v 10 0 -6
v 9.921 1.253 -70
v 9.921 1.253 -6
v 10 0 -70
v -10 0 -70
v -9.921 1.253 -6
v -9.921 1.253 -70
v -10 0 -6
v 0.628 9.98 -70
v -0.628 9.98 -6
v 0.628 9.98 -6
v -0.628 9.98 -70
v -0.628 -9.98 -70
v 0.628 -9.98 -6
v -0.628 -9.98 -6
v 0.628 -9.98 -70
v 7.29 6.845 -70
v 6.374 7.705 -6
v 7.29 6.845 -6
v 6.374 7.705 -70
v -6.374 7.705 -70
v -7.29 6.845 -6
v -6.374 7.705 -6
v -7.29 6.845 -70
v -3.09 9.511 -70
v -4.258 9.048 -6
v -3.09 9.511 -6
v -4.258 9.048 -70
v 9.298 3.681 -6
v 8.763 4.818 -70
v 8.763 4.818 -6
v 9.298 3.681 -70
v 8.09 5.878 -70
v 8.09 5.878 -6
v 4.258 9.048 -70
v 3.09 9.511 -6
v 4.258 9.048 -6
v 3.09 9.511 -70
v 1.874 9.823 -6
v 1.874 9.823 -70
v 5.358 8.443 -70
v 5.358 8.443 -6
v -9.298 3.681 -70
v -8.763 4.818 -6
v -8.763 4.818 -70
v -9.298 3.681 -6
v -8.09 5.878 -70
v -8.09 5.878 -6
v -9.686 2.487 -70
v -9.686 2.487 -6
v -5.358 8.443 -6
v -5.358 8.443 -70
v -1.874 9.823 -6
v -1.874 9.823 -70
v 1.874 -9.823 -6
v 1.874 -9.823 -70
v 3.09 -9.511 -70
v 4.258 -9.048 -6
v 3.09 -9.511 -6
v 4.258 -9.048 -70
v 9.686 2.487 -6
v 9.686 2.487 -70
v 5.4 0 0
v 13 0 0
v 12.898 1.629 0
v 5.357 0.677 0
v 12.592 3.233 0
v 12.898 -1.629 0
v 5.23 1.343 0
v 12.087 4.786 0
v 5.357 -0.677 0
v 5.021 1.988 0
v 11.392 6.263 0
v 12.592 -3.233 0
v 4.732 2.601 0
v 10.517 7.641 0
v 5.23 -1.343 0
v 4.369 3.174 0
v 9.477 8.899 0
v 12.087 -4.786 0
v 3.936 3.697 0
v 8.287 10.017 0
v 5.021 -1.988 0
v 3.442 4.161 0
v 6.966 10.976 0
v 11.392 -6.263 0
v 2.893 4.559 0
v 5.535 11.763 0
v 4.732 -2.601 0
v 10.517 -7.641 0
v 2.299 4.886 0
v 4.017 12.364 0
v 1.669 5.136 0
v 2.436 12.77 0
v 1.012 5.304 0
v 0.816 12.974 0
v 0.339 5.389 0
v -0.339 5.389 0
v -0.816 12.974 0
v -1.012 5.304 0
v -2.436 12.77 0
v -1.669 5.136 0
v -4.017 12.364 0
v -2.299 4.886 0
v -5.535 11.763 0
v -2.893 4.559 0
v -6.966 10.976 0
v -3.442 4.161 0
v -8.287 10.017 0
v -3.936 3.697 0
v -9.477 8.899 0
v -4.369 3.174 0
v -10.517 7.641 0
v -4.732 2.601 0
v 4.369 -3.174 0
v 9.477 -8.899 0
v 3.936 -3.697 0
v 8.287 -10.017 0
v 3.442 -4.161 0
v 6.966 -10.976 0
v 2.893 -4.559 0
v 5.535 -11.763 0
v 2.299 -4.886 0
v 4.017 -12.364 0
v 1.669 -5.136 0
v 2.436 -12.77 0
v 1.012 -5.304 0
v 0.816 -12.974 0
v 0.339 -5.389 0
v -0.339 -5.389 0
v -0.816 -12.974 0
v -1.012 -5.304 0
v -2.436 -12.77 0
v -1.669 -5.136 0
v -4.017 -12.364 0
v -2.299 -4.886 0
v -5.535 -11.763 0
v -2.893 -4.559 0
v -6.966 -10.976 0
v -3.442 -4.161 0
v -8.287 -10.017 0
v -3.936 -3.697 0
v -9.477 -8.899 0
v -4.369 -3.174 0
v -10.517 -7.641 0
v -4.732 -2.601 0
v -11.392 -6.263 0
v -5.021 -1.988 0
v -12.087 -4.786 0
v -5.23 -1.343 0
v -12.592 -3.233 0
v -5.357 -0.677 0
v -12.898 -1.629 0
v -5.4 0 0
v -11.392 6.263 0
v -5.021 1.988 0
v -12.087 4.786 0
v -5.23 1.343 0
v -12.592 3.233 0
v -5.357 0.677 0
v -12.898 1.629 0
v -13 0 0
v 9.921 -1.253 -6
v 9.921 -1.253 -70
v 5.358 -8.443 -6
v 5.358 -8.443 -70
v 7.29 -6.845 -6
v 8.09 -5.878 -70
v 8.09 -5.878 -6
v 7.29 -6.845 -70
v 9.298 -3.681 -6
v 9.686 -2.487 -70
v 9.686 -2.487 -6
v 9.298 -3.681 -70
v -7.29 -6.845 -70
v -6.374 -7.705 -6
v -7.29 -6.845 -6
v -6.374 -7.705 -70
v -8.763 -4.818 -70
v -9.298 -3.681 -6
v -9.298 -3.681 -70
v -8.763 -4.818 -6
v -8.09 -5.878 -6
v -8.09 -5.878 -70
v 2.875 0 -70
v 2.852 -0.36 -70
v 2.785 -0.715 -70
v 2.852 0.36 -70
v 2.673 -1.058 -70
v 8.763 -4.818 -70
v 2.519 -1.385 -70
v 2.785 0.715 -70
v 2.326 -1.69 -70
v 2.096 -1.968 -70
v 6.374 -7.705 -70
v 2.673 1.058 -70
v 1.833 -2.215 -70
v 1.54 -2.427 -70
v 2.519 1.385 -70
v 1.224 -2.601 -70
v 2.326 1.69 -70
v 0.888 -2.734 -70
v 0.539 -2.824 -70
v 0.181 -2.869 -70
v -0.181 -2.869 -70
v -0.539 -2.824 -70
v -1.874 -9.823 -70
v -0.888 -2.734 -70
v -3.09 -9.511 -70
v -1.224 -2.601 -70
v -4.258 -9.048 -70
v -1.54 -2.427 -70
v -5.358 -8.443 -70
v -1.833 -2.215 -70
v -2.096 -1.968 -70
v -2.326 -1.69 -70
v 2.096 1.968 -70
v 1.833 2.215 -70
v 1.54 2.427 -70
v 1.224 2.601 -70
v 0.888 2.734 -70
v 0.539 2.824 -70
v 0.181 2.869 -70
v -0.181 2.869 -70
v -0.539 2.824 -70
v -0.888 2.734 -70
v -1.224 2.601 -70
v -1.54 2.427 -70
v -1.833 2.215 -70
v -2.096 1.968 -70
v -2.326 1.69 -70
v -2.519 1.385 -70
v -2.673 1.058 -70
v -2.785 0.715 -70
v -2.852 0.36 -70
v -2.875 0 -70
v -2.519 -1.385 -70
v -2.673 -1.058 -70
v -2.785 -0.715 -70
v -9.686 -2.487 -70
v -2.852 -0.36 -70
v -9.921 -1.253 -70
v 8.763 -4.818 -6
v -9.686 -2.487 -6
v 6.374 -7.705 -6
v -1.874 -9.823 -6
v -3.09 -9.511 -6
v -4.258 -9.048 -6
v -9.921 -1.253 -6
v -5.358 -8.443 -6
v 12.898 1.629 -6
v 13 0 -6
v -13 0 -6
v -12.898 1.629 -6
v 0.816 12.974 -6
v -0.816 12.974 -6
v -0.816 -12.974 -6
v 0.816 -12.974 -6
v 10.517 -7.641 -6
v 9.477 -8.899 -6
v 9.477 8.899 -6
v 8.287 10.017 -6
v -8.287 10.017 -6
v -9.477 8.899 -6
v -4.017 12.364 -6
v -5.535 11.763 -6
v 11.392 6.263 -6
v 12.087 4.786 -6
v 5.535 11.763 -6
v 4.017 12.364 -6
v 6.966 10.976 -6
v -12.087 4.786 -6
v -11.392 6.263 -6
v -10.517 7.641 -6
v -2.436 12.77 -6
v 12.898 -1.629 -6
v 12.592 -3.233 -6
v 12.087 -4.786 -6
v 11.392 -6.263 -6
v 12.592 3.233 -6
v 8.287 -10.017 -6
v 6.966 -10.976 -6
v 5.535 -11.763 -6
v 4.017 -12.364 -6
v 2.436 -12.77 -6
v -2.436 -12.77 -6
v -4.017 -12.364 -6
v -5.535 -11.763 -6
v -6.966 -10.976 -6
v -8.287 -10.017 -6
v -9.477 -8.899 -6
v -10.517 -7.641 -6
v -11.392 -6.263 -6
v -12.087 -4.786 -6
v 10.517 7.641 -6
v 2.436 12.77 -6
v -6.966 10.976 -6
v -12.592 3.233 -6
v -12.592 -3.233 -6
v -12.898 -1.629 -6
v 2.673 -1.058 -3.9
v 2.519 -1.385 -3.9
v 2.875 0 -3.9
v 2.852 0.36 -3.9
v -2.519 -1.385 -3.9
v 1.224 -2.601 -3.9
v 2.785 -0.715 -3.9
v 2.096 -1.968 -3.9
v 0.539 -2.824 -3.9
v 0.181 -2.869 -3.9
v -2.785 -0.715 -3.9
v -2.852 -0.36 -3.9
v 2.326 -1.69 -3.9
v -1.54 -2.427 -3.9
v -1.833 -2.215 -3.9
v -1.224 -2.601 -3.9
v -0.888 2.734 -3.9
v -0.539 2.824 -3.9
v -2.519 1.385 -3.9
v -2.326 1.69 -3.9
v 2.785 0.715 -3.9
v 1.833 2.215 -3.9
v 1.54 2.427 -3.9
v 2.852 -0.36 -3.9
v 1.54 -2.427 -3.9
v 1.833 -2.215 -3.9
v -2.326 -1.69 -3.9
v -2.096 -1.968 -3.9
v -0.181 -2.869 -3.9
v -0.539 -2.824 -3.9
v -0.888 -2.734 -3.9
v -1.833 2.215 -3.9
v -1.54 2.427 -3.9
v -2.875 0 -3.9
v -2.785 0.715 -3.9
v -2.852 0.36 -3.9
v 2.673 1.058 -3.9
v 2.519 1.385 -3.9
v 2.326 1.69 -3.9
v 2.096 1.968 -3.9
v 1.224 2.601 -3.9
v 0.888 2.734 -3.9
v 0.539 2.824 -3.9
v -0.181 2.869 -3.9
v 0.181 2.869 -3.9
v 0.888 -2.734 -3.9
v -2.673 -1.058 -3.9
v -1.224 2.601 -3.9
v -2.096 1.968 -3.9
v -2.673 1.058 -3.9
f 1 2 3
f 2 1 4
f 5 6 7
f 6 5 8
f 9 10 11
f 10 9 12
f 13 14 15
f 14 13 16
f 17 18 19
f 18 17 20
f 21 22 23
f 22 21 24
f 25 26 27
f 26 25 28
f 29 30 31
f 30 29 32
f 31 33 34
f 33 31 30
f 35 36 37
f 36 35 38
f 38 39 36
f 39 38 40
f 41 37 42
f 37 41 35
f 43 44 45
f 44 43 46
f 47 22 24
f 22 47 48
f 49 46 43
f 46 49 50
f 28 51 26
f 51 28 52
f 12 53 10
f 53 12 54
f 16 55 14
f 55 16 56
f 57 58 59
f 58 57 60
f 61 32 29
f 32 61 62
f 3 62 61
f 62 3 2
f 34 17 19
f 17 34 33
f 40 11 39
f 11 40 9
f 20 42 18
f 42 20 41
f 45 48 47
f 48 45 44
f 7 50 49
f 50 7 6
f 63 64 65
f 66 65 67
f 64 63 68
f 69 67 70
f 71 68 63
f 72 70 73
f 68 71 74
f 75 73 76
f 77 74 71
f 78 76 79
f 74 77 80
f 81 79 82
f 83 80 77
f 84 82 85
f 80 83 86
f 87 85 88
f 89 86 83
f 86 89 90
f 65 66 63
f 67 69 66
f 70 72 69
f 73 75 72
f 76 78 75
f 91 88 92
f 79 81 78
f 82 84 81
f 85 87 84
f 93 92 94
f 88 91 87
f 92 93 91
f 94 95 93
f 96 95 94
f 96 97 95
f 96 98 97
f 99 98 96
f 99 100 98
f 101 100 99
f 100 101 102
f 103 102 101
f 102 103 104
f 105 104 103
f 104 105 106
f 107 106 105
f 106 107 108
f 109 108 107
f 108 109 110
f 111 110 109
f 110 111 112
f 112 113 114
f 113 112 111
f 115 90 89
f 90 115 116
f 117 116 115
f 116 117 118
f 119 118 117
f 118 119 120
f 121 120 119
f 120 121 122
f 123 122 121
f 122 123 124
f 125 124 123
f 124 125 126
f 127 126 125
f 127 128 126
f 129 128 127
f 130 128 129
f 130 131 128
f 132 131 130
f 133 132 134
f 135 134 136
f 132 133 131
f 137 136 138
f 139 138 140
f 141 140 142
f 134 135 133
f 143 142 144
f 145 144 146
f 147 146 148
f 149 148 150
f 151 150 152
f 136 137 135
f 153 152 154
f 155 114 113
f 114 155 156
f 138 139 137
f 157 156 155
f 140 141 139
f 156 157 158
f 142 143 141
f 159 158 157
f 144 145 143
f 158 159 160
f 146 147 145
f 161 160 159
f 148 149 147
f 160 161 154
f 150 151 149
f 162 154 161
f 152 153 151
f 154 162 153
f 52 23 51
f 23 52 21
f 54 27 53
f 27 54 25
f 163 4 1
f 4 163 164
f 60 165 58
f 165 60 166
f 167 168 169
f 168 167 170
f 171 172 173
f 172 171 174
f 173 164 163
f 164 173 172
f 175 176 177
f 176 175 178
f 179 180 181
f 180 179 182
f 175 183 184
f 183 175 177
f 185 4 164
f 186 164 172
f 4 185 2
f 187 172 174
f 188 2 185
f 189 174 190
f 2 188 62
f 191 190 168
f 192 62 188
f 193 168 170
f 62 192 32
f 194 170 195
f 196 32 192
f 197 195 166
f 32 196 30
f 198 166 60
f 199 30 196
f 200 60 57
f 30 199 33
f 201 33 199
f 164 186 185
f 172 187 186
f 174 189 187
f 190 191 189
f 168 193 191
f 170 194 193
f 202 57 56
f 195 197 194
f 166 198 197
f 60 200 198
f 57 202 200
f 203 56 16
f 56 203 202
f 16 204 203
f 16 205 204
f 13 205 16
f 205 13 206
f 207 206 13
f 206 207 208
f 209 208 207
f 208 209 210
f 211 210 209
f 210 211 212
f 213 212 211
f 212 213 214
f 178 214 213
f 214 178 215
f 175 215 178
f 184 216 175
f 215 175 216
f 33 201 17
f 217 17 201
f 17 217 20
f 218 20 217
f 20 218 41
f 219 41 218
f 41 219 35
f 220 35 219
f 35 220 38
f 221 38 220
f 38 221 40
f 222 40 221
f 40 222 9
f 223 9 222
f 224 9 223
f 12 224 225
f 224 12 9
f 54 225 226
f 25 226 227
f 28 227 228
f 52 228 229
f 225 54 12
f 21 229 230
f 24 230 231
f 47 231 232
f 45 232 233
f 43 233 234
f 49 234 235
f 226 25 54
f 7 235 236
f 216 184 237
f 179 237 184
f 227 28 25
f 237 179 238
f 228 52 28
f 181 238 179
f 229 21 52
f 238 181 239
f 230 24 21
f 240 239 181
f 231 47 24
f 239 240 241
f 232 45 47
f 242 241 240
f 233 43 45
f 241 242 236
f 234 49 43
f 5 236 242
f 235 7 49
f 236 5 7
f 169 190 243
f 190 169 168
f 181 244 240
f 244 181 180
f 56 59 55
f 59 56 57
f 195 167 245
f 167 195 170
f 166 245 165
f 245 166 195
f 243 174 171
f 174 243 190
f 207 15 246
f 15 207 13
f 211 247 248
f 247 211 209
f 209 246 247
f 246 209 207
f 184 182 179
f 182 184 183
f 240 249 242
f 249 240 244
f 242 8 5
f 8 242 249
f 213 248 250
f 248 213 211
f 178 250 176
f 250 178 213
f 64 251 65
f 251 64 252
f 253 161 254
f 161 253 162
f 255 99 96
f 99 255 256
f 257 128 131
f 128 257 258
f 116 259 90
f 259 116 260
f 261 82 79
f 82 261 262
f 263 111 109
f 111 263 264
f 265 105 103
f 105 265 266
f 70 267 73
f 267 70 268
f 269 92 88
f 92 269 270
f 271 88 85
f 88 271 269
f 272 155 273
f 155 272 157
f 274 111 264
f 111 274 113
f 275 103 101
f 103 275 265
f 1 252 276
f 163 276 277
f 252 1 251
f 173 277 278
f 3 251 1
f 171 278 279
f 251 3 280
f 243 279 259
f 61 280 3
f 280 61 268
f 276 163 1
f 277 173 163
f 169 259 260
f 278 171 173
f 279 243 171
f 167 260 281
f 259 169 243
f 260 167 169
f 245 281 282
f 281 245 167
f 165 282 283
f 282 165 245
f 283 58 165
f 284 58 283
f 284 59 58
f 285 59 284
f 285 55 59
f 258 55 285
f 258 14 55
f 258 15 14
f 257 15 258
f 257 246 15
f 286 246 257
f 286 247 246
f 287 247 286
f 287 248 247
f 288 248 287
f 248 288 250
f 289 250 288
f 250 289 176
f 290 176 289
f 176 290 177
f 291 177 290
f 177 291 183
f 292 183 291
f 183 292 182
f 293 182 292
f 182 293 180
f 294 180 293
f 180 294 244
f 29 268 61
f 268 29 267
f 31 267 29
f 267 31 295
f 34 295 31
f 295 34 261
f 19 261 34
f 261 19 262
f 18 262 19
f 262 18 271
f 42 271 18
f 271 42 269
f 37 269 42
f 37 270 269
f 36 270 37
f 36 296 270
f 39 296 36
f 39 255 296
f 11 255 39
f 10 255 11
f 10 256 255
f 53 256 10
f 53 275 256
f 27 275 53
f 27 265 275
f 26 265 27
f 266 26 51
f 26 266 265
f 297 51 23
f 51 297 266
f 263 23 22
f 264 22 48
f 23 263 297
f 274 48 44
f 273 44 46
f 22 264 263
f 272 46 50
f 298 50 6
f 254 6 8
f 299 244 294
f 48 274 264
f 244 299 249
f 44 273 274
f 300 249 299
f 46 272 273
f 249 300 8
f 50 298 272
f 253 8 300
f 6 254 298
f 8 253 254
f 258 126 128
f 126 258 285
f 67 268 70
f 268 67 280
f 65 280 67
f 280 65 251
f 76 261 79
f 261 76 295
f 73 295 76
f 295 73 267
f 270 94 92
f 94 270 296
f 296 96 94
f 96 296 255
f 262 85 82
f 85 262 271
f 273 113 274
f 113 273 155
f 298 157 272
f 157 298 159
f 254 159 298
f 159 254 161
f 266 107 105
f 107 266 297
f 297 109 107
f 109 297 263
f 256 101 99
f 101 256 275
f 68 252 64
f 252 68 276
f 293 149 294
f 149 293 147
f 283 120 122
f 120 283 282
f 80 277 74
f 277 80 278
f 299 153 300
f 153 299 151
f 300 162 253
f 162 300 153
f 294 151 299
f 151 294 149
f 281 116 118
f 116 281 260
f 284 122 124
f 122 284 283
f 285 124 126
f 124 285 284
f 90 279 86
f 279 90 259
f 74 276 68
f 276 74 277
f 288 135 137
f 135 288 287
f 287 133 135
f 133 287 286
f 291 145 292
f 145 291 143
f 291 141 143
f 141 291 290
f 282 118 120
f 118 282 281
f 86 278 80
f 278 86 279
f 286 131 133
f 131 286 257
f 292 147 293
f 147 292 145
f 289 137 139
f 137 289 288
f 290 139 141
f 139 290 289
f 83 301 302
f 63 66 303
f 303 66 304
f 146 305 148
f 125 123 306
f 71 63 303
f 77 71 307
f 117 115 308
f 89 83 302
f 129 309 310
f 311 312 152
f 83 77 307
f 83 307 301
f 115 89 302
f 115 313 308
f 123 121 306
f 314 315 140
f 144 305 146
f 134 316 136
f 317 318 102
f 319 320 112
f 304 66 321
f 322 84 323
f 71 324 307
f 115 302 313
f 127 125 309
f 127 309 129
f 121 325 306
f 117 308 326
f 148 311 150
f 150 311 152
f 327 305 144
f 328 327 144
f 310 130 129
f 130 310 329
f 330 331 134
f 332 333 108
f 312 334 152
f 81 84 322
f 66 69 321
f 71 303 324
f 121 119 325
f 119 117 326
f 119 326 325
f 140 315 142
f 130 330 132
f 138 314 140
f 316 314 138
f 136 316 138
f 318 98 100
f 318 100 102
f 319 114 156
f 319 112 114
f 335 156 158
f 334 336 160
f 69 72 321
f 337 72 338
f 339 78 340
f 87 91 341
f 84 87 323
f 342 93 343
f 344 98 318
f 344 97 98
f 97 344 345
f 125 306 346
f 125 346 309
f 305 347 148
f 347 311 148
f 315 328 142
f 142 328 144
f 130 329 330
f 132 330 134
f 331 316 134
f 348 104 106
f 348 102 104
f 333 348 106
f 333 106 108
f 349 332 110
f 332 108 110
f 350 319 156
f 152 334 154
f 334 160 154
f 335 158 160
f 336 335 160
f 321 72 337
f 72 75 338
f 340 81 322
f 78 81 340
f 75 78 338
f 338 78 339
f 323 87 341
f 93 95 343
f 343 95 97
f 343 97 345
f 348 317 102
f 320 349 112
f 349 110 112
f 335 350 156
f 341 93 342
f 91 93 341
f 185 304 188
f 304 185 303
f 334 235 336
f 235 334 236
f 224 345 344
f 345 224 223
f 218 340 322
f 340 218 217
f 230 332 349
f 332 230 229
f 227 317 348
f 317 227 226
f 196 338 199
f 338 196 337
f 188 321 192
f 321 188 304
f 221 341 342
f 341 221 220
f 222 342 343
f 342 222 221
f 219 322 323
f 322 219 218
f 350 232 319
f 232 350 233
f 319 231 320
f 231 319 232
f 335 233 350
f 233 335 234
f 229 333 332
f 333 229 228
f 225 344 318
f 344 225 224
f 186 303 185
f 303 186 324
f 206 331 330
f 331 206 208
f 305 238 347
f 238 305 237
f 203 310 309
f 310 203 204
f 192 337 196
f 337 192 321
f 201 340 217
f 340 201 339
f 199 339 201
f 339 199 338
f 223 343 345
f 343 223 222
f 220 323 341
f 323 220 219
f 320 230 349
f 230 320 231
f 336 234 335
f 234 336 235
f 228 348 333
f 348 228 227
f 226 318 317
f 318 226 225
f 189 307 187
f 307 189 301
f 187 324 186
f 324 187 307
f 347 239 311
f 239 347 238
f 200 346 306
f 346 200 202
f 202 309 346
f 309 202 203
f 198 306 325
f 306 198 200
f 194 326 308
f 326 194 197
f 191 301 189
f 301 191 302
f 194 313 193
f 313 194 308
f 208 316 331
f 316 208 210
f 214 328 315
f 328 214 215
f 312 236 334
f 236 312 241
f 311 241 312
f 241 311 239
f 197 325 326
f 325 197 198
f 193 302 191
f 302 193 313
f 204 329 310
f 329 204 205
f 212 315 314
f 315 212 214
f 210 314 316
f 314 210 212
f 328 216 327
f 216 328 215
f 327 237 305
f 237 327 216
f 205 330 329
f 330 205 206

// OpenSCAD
$fn = 50;


difference() {
	union() {
		translate(v = [0, 0, -70.0000000000]) {
			cylinder(h = 70, r = 10.0000000000);
		}
		translate(v = [0, 0, -6.0000000000]) {
			cylinder(h = 6, r = 13.0000000000);
		}
	}
	union() {
		translate(v = [0, 0, 0]) {
			rotate(a = [0, 0, 0]) {
				difference() {
					union() {
						#translate(v = [0, 0, -70.0000000000]) {
							cylinder(h = 70, r = 2.6000000000);
						}
						#translate(v = [0, 0, -3.9000000000]) {
							cylinder(h = 3.9000000000, r = 10.0000000000, r1 = 2.8750000000, r2 = 5.4000000000);
						}
						#translate(v = [0, 0, -70.0000000000]) {
							cylinder(h = 70, r = 2.8750000000);
						}
						#translate(v = [0, 0, -70.0000000000]) {
							cylinder(h = 70, r = 2.6000000000);
						}
					}
					union();
				}
			}
		}
	}
}
